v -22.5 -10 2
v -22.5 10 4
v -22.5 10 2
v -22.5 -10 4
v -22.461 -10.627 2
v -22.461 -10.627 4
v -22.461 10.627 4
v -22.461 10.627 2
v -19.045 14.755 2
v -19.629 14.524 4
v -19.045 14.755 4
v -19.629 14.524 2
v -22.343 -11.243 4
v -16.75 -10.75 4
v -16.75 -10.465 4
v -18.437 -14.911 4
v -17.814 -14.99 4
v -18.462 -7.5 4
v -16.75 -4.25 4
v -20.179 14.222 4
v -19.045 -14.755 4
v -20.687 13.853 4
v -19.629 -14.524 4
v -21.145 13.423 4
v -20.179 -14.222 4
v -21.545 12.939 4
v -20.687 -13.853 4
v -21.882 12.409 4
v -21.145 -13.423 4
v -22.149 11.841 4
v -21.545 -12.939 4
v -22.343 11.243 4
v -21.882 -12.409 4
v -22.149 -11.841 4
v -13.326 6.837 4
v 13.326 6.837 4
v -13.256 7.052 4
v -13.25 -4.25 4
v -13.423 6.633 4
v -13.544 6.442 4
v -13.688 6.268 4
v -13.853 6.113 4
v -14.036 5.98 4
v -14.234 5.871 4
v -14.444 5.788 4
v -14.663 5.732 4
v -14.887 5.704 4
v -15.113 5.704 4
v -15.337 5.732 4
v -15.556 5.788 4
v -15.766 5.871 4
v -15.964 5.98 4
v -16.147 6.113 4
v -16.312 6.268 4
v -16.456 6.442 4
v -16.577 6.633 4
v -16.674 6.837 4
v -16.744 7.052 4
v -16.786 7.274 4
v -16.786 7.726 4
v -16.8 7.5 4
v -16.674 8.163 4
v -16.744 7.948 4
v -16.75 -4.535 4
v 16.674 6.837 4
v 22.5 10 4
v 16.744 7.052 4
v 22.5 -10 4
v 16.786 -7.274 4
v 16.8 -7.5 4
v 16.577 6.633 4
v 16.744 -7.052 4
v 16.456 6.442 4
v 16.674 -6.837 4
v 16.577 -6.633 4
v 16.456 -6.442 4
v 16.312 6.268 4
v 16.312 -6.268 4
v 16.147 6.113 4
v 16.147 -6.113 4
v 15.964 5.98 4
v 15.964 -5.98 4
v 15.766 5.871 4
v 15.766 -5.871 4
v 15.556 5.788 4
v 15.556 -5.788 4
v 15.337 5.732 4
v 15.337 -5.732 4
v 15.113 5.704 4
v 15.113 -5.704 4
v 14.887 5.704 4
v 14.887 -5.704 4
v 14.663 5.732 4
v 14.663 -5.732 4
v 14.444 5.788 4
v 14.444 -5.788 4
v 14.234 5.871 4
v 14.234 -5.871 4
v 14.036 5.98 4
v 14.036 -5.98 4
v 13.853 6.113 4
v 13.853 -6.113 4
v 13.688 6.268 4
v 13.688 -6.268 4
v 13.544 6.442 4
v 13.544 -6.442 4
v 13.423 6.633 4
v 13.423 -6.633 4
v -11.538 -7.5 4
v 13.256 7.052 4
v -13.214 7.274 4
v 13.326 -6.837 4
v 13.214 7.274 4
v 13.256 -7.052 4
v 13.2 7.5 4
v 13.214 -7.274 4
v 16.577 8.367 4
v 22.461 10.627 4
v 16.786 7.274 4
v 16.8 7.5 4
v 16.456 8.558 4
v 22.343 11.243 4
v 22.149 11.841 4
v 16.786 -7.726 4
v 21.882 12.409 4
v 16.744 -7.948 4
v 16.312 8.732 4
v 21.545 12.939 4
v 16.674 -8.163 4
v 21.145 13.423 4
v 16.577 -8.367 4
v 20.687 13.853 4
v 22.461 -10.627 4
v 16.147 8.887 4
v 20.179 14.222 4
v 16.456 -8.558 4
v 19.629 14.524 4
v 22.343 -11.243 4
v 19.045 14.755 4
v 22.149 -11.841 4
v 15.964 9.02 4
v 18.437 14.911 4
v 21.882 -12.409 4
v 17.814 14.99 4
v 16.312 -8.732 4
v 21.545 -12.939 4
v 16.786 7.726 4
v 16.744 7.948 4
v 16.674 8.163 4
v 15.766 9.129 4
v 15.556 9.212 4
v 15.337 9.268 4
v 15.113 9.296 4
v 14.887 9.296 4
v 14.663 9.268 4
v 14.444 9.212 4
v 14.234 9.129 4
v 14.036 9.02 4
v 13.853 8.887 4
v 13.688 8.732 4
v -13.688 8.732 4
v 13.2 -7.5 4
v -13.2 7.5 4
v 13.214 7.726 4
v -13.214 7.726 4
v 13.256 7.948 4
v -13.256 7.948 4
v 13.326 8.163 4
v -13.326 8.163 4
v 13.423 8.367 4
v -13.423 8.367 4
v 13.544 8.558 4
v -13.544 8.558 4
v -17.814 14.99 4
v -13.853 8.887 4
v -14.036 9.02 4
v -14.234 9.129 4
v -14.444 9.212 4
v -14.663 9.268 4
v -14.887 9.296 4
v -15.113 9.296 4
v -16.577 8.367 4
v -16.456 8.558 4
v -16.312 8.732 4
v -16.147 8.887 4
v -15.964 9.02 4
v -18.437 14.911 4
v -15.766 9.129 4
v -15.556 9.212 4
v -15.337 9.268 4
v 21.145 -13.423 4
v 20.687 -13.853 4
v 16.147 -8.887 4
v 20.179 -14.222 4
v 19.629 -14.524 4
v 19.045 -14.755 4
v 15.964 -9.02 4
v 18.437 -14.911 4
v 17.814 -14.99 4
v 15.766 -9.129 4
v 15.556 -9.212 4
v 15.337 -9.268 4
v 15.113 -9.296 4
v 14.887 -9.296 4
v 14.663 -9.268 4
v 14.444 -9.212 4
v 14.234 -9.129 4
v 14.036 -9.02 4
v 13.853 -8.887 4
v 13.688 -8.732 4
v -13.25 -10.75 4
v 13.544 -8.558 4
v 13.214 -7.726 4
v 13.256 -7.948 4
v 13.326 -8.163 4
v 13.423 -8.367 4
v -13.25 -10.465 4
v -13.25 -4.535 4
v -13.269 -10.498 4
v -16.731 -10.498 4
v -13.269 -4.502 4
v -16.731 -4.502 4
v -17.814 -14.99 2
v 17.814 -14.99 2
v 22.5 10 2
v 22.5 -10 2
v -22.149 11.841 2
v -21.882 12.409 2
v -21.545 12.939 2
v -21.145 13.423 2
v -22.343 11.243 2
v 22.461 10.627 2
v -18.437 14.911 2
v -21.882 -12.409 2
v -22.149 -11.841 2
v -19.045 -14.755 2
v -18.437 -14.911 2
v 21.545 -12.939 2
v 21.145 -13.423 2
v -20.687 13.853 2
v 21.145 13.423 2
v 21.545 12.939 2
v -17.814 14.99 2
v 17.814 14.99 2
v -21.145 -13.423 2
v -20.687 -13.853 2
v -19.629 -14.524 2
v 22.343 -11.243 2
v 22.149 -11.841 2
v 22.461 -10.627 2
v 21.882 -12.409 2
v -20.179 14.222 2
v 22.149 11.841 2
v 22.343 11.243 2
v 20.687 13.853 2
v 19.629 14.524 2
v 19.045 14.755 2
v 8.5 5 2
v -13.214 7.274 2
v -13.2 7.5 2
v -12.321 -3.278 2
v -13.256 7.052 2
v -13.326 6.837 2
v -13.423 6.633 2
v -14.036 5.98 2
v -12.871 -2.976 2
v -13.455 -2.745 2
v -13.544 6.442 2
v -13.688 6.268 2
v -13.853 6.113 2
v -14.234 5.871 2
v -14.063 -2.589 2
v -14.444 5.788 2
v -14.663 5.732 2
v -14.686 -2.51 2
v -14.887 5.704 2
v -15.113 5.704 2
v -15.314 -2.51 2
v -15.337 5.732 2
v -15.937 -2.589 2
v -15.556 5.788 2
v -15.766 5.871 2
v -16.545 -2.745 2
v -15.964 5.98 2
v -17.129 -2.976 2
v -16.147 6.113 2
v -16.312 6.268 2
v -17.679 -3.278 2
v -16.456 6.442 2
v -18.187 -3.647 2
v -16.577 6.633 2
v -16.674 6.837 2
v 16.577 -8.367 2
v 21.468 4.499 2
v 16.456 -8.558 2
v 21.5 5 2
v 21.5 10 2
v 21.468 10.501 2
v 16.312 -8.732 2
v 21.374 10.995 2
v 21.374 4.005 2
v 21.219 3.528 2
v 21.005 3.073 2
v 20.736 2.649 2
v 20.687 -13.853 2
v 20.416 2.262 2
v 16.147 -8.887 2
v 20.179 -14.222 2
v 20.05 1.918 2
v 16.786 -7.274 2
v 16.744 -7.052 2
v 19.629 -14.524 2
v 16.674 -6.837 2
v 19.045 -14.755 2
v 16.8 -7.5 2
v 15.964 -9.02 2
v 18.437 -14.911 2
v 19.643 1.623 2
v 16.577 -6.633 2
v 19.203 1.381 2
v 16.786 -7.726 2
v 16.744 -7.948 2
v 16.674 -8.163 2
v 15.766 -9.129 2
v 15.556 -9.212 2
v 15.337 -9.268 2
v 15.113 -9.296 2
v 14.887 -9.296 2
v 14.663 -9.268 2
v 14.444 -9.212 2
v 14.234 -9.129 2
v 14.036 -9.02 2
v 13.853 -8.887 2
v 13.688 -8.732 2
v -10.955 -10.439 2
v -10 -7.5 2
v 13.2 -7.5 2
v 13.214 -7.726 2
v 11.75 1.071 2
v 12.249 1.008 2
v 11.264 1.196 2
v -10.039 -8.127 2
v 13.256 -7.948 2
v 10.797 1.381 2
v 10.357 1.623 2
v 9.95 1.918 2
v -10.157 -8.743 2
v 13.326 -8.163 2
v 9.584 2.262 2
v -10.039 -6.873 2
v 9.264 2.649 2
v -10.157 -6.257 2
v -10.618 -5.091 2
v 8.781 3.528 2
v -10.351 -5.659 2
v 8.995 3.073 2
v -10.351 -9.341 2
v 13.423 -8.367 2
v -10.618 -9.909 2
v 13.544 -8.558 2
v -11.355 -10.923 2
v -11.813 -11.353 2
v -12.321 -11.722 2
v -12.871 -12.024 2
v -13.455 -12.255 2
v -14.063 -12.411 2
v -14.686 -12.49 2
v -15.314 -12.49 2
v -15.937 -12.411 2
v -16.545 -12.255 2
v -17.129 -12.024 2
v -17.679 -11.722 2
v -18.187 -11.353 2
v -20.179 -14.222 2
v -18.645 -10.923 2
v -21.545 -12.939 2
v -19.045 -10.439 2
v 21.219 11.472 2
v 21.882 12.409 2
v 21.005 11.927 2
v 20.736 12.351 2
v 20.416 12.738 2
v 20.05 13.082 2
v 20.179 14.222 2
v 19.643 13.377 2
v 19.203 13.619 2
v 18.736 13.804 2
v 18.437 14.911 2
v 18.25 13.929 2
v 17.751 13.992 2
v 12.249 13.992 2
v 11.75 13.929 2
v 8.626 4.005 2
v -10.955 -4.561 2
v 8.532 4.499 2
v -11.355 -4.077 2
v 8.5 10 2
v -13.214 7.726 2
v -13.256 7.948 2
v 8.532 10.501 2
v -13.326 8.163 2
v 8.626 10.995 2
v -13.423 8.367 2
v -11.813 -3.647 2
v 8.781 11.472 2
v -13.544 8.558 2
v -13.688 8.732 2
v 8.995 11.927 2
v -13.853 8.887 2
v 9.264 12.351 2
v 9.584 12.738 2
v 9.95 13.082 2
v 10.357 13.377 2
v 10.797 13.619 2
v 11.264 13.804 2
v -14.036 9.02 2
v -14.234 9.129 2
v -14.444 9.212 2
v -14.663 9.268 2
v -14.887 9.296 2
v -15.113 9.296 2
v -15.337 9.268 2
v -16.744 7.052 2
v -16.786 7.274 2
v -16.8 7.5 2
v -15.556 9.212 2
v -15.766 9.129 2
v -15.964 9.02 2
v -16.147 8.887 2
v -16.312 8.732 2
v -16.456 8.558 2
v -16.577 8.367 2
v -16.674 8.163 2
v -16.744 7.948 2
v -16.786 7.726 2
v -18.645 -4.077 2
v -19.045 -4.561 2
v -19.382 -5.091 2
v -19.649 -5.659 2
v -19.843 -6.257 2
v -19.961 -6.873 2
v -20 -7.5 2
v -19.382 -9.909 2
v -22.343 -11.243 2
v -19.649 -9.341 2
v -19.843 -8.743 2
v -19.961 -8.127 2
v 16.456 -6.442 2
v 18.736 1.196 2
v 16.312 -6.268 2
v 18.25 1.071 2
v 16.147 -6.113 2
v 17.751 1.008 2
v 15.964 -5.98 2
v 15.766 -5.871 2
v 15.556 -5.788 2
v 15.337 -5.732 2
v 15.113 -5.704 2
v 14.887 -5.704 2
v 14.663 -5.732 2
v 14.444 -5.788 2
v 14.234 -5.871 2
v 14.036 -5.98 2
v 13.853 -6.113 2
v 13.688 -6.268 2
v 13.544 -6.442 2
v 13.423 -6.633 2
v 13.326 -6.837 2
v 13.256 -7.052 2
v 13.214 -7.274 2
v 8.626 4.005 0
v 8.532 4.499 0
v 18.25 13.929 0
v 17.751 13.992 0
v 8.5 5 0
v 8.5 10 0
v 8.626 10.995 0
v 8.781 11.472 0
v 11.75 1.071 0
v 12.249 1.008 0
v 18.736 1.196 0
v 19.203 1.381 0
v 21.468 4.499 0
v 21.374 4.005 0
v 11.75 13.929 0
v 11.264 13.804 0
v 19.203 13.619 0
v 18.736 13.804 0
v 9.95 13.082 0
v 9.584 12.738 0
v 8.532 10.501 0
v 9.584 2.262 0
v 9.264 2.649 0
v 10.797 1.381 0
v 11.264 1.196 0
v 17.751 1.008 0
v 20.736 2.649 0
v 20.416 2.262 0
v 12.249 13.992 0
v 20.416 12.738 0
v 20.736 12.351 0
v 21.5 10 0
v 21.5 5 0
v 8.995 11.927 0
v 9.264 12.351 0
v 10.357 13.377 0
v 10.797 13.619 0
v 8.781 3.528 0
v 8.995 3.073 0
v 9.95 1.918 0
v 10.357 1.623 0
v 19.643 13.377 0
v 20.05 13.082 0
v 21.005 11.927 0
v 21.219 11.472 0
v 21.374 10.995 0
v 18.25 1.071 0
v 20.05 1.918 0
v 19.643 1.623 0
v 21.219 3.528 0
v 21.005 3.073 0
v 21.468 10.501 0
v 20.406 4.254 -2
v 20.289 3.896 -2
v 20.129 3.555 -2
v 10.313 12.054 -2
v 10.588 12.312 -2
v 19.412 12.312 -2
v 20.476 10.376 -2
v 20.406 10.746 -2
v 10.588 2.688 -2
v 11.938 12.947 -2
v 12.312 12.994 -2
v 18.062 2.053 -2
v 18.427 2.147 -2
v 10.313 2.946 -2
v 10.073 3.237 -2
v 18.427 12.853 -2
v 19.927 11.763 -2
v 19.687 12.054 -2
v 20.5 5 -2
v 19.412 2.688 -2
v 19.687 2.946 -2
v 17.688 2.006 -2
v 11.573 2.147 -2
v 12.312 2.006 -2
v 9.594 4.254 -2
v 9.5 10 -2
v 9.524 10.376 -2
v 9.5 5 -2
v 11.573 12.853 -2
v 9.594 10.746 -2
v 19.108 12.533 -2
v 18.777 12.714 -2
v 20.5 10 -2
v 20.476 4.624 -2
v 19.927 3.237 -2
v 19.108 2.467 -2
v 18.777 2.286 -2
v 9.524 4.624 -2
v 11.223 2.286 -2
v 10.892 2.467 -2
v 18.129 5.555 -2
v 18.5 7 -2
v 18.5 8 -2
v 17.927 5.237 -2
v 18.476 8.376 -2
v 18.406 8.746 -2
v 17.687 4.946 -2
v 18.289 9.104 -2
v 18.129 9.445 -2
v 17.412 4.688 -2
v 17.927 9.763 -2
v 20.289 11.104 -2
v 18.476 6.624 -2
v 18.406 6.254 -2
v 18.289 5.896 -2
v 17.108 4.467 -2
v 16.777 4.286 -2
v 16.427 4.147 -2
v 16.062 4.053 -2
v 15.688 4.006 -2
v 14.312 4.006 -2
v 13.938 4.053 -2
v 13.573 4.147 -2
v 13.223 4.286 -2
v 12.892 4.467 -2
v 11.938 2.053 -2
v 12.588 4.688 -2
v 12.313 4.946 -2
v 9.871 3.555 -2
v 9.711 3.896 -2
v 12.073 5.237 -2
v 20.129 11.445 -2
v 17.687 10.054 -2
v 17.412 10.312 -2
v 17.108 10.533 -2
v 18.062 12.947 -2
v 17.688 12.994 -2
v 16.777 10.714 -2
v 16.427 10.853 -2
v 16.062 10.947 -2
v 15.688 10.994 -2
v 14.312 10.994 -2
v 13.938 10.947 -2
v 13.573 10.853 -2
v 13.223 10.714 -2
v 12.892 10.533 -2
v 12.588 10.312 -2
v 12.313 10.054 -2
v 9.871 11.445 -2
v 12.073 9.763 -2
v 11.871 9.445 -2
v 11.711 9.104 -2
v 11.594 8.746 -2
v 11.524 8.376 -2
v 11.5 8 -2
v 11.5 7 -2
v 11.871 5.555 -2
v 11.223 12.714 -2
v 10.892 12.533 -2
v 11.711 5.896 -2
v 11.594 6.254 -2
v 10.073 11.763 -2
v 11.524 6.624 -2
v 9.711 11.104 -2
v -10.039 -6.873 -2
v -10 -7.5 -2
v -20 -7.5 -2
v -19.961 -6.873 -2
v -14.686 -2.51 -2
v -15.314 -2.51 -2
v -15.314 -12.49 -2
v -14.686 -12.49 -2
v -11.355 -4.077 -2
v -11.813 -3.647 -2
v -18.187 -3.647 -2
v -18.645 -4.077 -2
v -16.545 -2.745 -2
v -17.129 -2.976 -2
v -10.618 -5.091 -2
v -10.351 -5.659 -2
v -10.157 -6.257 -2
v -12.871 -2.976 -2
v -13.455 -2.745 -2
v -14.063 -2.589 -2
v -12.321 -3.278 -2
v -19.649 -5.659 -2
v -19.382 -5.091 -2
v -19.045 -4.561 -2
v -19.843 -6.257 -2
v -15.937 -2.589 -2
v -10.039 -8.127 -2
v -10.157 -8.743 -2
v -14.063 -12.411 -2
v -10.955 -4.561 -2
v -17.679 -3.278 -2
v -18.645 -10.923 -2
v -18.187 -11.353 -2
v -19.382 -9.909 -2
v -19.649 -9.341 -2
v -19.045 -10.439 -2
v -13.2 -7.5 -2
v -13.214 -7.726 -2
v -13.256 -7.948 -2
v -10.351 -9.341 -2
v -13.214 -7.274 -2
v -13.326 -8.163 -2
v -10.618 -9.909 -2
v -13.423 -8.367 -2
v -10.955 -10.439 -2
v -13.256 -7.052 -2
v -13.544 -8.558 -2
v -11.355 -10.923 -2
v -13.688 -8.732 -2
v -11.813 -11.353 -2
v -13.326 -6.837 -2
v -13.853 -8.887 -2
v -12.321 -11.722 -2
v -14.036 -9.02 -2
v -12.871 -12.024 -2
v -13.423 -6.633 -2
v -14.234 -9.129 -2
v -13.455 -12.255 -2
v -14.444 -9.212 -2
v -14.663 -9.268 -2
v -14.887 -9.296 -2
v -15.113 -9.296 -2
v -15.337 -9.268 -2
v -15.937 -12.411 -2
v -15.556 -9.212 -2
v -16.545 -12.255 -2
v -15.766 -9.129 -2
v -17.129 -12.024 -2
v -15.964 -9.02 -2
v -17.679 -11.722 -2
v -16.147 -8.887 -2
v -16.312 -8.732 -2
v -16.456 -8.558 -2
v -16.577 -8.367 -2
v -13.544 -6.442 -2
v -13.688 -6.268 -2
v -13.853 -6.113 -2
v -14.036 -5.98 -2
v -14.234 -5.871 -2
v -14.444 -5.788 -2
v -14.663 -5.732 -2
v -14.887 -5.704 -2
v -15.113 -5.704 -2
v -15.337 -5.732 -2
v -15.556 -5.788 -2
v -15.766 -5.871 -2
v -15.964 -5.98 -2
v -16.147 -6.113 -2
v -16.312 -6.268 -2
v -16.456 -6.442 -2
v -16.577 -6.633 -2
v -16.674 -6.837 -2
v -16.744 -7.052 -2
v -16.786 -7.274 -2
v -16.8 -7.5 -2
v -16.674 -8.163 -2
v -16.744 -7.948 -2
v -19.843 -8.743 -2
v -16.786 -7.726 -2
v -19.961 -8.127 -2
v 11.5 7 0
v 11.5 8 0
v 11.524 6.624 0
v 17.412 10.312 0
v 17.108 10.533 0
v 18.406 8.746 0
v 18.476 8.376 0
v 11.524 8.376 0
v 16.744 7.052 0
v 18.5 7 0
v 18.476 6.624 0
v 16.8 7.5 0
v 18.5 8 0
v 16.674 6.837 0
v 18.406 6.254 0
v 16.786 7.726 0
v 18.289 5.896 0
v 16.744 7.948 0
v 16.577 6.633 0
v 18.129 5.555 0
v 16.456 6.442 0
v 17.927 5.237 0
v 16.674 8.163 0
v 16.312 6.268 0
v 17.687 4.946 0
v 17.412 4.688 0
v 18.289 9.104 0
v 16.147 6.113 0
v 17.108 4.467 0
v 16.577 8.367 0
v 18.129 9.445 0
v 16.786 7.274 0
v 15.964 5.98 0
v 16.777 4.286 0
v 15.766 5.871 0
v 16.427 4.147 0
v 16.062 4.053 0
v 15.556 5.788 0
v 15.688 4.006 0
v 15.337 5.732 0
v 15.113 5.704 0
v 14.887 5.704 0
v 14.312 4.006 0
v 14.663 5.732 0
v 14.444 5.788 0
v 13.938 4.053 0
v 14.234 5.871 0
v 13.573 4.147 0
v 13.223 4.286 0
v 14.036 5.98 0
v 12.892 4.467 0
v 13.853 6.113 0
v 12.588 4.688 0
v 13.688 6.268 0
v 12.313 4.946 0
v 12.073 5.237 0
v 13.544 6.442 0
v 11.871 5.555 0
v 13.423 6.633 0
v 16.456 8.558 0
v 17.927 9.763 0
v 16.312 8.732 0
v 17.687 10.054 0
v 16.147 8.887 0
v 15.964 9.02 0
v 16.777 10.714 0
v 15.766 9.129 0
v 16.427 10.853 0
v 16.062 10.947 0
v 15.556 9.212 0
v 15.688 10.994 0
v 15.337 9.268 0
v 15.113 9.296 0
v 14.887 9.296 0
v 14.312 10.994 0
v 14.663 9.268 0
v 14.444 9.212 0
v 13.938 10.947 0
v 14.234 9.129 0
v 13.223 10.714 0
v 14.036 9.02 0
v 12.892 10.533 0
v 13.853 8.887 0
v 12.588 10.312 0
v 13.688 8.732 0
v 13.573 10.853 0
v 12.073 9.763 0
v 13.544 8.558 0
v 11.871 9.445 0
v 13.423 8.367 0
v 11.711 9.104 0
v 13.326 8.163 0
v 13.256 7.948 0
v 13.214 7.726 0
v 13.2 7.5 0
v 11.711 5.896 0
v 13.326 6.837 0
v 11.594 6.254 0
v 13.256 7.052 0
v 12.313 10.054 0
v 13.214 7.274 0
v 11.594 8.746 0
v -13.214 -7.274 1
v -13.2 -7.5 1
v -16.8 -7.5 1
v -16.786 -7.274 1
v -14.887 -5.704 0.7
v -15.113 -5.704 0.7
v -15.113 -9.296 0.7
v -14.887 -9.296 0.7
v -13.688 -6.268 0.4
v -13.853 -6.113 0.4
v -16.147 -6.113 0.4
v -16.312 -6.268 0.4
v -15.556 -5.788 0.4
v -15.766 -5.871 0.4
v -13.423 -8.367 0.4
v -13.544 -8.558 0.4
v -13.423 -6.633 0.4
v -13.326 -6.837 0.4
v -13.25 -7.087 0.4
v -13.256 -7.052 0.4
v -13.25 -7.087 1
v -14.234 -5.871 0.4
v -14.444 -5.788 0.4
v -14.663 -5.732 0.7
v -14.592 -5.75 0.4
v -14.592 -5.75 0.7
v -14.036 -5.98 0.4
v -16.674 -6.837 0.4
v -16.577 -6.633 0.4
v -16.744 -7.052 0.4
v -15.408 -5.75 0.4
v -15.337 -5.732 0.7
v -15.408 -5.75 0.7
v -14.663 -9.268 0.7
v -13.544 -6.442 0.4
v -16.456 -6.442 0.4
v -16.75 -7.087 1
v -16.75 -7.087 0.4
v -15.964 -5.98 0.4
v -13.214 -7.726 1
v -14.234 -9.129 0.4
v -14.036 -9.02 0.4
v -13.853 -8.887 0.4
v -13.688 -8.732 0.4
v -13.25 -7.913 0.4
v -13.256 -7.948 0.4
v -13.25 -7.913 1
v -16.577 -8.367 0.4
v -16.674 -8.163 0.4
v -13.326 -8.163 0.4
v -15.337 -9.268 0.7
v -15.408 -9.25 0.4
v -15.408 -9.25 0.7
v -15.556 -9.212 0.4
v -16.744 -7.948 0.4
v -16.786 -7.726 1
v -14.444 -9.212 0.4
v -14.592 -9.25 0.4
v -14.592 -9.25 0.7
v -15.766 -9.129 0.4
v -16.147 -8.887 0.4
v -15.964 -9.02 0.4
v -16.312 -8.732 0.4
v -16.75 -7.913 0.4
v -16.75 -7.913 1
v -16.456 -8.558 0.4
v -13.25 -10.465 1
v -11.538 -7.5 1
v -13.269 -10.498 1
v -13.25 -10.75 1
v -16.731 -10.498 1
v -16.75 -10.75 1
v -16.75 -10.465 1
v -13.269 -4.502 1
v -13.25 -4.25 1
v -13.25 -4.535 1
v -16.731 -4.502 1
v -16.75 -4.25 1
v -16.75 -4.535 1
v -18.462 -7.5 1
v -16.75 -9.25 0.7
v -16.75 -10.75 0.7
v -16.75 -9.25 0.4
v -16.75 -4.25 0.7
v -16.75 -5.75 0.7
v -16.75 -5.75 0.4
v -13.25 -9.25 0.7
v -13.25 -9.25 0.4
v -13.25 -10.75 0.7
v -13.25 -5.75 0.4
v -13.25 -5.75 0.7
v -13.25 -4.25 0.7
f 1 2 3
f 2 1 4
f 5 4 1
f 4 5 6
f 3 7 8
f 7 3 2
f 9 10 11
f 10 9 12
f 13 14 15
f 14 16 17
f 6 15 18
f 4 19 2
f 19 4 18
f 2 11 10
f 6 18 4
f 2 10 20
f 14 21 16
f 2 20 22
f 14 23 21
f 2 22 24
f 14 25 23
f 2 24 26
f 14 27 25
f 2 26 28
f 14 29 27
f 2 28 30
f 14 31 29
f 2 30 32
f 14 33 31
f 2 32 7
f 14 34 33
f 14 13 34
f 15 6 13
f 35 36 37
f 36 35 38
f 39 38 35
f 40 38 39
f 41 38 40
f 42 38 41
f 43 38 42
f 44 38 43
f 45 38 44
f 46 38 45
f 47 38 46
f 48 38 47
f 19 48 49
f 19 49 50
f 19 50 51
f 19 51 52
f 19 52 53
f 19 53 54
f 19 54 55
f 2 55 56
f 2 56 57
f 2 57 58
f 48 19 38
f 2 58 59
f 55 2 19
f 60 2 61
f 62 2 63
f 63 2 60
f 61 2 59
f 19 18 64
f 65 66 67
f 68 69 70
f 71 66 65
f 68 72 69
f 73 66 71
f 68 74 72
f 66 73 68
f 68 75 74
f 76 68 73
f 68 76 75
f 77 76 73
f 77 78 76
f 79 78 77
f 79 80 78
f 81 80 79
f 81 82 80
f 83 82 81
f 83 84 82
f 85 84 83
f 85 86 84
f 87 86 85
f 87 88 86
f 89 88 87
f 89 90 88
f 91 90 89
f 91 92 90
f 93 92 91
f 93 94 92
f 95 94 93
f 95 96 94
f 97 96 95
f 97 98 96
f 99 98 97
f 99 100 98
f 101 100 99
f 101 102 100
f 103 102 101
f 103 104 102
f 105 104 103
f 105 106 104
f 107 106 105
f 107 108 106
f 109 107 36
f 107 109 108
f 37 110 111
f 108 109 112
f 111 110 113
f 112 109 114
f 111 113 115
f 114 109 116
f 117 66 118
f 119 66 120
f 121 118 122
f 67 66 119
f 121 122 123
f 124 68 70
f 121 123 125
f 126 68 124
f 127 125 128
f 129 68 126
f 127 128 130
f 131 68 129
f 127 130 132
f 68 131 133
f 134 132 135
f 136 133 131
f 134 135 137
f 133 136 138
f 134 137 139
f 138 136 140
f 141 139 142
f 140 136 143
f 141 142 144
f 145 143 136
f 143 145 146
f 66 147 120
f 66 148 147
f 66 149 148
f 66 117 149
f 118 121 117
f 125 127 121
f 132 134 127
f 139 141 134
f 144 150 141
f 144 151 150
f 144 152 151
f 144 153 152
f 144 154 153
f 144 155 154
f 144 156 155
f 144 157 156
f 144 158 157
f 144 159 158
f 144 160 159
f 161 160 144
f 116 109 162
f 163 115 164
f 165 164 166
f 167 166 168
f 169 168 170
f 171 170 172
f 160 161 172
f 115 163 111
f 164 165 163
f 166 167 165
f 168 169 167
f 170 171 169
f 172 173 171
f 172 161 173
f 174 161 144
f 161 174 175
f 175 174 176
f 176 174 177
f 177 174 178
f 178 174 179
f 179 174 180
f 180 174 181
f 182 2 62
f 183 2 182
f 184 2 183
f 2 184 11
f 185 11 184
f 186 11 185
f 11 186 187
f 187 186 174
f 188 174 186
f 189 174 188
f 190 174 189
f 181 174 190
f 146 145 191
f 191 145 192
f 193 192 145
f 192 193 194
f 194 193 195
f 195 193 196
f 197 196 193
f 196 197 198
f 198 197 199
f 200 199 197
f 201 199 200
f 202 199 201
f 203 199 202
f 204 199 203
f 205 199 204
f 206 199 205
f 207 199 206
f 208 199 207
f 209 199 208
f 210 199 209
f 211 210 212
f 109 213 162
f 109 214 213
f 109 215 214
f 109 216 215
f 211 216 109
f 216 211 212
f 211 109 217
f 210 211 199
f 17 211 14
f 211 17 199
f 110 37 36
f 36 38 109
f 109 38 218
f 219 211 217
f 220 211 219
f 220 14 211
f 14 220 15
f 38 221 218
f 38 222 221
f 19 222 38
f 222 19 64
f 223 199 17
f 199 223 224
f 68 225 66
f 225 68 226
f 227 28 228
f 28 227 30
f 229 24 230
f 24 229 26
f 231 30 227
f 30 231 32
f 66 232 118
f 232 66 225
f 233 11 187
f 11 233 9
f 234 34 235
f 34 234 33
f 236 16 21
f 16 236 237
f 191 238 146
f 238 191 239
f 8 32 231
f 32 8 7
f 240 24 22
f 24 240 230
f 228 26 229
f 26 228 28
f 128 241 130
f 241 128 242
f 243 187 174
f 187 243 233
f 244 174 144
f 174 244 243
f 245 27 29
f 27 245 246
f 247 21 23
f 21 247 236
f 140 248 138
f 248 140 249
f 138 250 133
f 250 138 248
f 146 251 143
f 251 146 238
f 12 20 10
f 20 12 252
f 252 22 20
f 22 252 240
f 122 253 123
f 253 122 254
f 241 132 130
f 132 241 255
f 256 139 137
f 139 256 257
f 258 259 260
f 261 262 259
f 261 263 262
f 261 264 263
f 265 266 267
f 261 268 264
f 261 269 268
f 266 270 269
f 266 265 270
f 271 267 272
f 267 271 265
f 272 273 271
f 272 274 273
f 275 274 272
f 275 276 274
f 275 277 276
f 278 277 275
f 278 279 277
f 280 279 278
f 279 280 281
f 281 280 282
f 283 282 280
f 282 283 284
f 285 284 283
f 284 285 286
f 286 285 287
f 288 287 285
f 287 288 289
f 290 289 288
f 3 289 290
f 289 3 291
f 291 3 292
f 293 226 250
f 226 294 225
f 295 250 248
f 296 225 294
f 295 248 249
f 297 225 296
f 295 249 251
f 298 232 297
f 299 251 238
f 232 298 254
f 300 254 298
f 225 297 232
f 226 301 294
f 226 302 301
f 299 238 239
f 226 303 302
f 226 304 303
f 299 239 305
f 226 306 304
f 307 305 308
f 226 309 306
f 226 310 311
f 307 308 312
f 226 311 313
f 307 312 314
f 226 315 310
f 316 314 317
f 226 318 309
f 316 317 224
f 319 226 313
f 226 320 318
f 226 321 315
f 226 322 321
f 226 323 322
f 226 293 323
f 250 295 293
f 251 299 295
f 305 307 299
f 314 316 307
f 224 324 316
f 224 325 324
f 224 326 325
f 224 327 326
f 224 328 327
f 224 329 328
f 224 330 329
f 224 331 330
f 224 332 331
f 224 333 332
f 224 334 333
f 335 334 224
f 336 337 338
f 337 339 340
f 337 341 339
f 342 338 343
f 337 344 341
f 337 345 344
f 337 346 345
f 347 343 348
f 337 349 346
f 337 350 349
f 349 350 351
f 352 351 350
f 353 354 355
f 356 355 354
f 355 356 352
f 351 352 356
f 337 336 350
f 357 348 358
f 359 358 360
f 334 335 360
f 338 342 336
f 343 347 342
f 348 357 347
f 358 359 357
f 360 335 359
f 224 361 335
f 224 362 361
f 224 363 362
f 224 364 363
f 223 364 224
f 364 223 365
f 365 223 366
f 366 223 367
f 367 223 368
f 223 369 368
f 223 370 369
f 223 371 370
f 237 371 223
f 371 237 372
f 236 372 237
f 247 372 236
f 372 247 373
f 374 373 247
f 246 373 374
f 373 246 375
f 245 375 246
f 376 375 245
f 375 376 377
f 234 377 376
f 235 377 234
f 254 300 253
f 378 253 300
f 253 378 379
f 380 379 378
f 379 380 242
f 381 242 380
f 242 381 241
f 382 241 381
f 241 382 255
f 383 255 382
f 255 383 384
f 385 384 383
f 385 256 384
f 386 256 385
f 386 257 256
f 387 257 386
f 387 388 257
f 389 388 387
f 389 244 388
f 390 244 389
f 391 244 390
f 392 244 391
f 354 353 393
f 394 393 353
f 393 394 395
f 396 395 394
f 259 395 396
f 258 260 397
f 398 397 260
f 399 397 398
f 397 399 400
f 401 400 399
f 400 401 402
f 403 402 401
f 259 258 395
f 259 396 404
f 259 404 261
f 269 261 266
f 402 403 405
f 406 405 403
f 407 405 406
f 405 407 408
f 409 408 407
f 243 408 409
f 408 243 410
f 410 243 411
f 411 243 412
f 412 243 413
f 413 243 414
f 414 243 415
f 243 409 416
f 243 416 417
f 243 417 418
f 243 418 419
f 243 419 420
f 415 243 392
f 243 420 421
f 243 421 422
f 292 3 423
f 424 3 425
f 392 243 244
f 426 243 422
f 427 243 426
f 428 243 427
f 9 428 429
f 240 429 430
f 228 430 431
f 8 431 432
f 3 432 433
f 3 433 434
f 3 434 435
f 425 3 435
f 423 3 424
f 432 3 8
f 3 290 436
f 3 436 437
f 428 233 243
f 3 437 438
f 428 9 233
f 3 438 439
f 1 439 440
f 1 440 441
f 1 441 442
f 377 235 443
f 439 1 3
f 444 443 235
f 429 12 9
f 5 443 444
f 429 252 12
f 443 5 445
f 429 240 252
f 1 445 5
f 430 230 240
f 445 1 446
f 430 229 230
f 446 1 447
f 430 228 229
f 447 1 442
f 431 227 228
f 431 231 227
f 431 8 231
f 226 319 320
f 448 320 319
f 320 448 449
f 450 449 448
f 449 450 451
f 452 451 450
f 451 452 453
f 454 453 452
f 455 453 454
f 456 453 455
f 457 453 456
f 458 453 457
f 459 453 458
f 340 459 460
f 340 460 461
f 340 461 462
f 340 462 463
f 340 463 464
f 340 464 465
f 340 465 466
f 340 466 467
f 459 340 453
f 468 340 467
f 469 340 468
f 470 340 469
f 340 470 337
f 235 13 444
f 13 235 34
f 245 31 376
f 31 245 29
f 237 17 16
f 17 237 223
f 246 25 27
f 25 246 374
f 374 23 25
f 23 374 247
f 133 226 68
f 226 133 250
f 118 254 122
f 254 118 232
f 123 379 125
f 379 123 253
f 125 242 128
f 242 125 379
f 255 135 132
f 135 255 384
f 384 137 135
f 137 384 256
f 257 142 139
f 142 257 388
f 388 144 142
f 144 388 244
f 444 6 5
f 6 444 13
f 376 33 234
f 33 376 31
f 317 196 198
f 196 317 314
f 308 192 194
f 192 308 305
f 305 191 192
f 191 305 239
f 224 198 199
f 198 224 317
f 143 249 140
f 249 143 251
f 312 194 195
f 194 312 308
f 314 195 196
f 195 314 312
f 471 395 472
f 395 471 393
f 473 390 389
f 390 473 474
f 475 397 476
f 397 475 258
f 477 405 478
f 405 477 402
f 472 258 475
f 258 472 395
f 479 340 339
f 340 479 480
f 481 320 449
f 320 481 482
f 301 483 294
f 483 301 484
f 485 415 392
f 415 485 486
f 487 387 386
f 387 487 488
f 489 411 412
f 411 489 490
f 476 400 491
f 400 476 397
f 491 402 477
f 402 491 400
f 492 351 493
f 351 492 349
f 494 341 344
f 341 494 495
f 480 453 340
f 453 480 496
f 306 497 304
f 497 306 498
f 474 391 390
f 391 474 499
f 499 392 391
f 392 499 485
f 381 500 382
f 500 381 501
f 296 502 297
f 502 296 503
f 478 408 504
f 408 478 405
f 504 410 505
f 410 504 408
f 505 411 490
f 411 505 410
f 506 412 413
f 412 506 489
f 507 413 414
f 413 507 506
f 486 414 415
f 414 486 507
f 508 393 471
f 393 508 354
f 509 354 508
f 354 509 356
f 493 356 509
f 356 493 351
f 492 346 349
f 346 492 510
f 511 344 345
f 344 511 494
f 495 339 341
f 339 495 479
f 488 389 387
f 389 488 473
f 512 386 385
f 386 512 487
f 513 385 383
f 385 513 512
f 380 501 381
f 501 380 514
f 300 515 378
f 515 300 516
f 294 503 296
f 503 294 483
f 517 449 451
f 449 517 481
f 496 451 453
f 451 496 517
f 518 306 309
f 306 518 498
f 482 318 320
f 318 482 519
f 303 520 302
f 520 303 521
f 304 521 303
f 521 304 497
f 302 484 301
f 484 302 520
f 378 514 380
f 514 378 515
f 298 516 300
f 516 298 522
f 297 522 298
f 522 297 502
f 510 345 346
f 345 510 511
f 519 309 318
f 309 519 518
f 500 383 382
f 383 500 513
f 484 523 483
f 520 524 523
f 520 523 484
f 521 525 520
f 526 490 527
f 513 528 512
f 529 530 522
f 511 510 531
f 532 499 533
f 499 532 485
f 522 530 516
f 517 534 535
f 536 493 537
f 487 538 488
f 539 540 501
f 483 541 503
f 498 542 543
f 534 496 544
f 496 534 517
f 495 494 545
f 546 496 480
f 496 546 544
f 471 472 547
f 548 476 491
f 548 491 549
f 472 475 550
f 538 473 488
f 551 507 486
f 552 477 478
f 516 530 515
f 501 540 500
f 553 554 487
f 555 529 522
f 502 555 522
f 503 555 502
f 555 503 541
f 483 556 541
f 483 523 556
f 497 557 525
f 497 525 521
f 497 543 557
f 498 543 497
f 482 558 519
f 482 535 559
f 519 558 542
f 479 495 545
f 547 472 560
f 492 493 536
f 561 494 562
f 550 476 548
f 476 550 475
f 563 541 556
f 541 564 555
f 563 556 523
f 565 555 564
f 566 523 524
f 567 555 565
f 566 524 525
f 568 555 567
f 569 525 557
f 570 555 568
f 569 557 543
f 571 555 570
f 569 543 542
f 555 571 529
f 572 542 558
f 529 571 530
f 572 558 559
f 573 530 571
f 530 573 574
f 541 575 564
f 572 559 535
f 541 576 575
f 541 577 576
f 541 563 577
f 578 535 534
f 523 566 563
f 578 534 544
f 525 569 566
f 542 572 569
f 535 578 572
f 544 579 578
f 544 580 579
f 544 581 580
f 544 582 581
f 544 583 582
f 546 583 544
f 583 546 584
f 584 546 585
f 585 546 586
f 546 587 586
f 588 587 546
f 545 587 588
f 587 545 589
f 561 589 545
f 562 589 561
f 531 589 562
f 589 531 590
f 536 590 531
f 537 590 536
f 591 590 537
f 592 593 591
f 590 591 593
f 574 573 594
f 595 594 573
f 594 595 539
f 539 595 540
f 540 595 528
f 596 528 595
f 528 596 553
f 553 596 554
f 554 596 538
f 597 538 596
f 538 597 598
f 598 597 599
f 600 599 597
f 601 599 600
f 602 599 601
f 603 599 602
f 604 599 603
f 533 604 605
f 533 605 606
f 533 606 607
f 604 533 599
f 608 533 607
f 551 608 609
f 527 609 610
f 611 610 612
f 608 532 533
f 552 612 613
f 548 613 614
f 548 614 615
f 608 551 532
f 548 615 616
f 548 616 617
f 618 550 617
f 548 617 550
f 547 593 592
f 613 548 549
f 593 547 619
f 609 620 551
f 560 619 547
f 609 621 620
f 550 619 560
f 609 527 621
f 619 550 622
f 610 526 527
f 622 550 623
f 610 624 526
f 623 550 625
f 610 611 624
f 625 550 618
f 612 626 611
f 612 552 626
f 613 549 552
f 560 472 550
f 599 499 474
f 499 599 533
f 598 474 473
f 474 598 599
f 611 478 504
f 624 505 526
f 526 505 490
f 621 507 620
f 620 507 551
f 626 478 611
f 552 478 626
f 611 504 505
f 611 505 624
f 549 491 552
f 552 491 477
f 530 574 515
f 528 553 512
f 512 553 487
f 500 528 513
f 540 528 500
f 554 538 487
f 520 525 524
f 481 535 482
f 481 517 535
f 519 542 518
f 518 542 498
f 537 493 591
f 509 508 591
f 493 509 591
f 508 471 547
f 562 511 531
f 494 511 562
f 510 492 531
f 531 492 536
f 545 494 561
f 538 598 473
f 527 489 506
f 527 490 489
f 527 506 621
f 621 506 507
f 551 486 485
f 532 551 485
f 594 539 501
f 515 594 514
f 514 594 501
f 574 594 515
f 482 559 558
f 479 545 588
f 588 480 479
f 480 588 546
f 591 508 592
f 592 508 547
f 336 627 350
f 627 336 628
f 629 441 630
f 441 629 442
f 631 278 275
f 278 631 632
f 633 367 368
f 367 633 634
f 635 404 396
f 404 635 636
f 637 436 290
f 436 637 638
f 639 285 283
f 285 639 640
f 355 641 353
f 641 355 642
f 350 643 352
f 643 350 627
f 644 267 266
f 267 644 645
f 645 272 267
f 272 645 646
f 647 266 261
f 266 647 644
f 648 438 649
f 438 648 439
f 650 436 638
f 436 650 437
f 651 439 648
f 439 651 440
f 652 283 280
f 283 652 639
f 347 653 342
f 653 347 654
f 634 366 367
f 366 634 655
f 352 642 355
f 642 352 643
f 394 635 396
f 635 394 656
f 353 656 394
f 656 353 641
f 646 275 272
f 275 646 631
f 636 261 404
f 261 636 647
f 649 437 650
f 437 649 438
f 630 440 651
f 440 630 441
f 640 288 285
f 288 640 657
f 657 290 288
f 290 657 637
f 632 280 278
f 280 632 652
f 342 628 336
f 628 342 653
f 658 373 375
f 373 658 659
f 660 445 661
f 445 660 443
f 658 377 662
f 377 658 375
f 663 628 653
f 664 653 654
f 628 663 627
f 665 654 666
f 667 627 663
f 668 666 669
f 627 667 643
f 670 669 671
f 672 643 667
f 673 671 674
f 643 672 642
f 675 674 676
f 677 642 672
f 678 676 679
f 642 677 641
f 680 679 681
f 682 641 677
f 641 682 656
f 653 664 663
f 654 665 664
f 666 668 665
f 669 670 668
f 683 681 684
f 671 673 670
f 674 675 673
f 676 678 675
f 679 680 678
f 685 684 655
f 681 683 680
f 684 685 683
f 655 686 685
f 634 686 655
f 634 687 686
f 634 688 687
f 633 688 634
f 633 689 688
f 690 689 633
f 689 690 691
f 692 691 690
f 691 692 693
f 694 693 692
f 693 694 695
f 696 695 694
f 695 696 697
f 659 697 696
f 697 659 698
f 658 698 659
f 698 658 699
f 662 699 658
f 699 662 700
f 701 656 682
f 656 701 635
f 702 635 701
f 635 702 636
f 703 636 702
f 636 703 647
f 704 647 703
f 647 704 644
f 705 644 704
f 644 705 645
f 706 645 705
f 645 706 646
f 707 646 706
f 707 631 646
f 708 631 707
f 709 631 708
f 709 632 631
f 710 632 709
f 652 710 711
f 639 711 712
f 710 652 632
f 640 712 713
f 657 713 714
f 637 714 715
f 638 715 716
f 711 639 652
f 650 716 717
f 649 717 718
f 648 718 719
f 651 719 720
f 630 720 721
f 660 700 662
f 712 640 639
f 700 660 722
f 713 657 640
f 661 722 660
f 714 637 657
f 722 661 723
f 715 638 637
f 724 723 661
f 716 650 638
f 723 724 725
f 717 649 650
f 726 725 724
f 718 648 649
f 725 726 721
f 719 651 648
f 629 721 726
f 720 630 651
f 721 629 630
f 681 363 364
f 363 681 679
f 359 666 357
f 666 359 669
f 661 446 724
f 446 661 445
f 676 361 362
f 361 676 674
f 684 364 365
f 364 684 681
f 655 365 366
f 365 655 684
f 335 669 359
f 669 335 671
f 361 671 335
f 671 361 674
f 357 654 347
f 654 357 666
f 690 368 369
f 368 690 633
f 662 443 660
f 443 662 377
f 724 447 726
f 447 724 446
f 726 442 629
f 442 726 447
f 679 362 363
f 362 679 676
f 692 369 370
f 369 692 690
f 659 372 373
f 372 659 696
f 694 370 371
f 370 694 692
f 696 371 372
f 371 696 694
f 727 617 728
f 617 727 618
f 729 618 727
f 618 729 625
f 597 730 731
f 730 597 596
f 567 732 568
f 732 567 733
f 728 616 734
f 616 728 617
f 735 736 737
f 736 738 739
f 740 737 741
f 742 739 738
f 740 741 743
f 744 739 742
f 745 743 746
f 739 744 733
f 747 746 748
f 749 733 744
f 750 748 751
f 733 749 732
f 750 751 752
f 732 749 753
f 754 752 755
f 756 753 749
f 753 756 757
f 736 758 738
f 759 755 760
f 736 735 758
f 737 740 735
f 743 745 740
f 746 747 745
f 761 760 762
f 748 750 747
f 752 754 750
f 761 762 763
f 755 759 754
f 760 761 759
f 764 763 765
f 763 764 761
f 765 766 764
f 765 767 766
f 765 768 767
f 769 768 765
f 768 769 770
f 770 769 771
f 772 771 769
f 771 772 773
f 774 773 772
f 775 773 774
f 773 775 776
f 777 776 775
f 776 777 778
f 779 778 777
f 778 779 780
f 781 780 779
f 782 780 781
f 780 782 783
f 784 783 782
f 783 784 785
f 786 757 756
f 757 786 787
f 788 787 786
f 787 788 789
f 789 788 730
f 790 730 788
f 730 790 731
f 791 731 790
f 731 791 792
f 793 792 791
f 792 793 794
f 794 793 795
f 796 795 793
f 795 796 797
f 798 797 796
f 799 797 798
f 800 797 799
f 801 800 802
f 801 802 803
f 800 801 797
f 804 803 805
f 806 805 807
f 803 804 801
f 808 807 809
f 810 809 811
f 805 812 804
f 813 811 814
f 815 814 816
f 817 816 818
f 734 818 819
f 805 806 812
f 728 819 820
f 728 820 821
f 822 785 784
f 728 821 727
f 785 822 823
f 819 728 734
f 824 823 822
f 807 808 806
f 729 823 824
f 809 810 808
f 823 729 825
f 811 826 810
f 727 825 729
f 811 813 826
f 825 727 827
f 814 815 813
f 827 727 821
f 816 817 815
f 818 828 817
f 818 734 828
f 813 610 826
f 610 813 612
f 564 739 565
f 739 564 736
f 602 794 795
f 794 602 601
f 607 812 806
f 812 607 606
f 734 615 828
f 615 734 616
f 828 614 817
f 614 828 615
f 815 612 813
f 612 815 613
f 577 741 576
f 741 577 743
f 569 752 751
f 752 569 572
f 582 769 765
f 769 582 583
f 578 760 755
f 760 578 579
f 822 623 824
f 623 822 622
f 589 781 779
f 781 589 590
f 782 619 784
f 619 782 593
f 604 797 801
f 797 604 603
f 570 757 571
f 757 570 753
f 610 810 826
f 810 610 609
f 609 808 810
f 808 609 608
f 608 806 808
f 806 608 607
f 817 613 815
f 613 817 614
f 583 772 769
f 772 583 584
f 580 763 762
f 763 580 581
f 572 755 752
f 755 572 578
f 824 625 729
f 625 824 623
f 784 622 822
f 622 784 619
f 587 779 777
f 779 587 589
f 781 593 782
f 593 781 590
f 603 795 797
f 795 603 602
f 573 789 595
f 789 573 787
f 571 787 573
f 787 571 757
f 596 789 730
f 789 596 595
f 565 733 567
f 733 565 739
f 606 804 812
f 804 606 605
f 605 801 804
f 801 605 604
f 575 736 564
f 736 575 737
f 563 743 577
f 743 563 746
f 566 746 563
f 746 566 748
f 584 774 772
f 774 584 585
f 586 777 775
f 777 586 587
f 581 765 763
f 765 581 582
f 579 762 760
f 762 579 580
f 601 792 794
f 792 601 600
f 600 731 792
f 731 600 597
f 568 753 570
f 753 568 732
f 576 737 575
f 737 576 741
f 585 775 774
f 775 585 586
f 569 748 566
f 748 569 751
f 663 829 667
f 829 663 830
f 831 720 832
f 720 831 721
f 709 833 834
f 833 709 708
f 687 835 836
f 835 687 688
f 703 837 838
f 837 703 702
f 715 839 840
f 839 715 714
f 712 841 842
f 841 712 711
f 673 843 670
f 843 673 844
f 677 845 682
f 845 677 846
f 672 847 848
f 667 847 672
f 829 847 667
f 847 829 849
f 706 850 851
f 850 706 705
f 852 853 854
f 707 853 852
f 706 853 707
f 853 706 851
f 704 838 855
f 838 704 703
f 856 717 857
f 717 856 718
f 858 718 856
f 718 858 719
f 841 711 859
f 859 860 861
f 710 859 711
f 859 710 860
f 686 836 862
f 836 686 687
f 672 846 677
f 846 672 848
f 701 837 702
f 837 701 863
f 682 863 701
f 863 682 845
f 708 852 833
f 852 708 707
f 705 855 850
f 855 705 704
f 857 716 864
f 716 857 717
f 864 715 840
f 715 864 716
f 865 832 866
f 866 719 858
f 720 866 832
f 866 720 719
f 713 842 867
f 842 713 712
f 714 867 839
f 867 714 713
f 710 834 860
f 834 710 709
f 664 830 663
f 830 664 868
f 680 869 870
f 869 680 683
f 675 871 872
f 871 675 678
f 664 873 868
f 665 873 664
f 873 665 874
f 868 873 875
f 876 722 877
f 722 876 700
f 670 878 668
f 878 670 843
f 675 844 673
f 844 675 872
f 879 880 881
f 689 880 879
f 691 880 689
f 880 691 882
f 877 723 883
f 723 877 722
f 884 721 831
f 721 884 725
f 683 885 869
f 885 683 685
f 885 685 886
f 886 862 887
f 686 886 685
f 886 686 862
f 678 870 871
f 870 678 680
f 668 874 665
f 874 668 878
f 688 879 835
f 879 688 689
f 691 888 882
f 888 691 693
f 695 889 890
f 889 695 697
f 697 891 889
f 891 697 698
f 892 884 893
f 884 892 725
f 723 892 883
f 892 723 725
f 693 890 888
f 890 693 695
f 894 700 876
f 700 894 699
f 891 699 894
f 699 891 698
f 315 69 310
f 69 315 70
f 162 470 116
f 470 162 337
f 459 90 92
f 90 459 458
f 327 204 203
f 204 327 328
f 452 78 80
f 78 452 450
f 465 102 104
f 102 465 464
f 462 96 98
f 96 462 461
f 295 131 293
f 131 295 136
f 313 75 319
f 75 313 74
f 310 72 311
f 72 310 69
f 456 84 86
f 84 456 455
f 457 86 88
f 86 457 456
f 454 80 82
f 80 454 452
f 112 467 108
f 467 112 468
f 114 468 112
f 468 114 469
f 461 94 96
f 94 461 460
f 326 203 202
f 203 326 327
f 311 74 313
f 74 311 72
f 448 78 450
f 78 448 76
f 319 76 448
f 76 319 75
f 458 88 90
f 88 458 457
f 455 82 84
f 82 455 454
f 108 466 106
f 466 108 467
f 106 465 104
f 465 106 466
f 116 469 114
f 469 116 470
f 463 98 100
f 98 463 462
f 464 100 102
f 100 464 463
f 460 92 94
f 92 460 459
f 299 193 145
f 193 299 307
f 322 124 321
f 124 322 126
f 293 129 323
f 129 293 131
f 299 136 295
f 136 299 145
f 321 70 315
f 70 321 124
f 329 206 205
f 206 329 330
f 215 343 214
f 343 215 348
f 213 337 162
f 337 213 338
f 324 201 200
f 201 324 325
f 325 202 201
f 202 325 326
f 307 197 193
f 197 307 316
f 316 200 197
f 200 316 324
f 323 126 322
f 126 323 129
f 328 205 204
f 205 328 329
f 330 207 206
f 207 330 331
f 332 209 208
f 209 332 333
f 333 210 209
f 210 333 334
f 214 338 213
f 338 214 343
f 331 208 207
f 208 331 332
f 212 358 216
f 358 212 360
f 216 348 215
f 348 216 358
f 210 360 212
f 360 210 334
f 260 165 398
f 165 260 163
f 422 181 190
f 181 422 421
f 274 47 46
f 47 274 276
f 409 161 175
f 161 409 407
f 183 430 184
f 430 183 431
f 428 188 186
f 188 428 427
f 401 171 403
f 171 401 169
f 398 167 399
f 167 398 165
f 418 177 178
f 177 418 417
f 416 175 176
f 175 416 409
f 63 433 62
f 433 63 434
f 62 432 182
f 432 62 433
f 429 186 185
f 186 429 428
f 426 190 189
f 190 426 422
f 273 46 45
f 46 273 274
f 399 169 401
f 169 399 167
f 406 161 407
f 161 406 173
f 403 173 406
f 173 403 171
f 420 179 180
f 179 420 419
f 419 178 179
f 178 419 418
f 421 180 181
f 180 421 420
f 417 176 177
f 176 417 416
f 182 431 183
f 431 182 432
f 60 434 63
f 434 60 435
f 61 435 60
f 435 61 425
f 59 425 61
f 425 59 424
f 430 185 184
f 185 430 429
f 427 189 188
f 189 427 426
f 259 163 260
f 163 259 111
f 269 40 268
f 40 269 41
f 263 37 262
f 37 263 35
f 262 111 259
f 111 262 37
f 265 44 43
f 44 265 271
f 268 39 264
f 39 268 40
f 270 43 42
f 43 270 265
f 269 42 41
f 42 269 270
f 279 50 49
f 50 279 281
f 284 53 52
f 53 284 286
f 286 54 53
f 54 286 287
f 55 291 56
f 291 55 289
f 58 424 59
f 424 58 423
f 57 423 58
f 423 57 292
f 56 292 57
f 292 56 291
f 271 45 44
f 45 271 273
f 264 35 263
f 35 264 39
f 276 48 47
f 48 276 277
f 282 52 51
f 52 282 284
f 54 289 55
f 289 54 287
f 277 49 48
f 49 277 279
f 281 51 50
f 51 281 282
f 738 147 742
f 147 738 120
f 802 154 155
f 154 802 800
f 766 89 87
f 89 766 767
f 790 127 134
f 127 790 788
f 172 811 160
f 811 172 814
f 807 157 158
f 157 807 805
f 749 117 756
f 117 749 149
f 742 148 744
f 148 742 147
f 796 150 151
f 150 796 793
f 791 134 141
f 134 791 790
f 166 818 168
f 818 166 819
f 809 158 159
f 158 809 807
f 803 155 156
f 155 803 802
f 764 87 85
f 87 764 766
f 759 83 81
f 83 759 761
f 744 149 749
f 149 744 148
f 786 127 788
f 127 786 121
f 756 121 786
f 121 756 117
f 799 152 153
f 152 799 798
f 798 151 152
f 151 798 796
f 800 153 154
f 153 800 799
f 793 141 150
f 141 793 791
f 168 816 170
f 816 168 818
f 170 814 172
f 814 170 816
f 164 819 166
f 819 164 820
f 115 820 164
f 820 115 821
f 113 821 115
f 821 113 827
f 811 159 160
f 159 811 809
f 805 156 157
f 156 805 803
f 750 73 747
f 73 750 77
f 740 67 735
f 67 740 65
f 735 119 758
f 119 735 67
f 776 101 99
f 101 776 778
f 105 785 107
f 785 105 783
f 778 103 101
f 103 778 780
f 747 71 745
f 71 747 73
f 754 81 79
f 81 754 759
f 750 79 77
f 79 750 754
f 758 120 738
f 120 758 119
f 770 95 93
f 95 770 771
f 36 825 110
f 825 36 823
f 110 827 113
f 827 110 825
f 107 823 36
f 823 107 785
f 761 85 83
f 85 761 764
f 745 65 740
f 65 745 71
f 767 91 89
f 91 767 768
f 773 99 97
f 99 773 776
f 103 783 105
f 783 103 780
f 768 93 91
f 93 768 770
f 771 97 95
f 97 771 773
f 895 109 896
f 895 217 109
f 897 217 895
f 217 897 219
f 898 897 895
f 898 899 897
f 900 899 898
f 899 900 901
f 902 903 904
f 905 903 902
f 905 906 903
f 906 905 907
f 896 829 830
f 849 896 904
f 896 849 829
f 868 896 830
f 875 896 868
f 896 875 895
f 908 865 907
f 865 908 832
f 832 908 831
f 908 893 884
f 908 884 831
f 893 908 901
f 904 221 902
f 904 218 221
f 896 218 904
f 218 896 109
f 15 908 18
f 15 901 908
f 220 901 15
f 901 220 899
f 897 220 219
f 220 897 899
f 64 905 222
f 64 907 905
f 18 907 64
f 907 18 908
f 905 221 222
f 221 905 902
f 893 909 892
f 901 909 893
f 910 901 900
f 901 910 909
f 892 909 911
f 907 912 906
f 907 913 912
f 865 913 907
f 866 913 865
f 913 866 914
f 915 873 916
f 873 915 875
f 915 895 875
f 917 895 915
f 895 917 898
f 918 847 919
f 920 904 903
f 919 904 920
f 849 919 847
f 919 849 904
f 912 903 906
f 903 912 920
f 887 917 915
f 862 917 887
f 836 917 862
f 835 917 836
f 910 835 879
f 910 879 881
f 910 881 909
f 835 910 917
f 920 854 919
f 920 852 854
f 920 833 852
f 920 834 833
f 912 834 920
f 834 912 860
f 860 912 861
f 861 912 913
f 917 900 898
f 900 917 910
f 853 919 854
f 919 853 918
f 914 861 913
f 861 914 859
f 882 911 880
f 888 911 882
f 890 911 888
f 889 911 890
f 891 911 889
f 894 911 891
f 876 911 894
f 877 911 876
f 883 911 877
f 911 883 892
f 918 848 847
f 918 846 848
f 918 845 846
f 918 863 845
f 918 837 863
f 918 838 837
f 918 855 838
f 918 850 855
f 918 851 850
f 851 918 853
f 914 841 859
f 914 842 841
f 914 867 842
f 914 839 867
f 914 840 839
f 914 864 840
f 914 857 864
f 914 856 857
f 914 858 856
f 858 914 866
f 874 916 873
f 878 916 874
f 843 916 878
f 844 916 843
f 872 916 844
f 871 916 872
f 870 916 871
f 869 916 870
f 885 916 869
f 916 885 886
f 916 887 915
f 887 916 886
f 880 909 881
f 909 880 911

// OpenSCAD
$fn = 50;


difference() {
	union() {
		translate(v = [0, 0, 2]) {
			rotate(a = [0, 0, 0]) {
				hull() {
					translate(v = [-17.5000000000, 10.0000000000, 0]) {
						rotate(a = [0, 0, 0]) {
							translate(v = [0, 0, 0]) {
								rotate(a = [0, 0, 0]) {
									cylinder(h = 2, r = 5);
								}
							}
						}
					}
					translate(v = [17.5000000000, 10.0000000000, 0]) {
						rotate(a = [0, 0, 0]) {
							translate(v = [0, 0, 0]) {
								rotate(a = [0, 0, 0]) {
									cylinder(h = 2, r = 5);
								}
							}
						}
					}
					translate(v = [-17.5000000000, -10.0000000000, 0]) {
						rotate(a = [0, 0, 0]) {
							translate(v = [0, 0, 0]) {
								rotate(a = [0, 0, 0]) {
									cylinder(h = 2, r = 5);
								}
							}
						}
					}
					translate(v = [17.5000000000, -10.0000000000, 0]) {
						rotate(a = [0, 0, 0]) {
							translate(v = [0, 0, 0]) {
								rotate(a = [0, 0, 0]) {
									cylinder(h = 2, r = 5);
								}
							}
						}
					}
				}
			}
		}
		translate(v = [15.0000000000, 7.5000000000, 0]) {
			rotate(a = [0, 0, 0]) {
				hull() {
					translate(v = [-2.5000000000, 2.5000000000, 0]) {
						rotate(a = [0, 0, 0]) {
							cylinder(h = 2, r1 = 4.0000000000, r2 = 4.0000000000);
						}
					}
					translate(v = [2.5000000000, 2.5000000000, 0]) {
						rotate(a = [0, 0, 0]) {
							cylinder(h = 2, r1 = 4.0000000000, r2 = 4.0000000000);
						}
					}
					translate(v = [-2.5000000000, -2.5000000000, 0]) {
						rotate(a = [0, 0, 0]) {
							cylinder(h = 2, r1 = 4.0000000000, r2 = 4.0000000000);
						}
					}
					translate(v = [2.5000000000, -2.5000000000, 0]) {
						rotate(a = [0, 0, 0]) {
							cylinder(h = 2, r1 = 4.0000000000, r2 = 4.0000000000);
						}
					}
				}
			}
		}
		translate(v = [15.0000000000, 7.5000000000, -2]) {
			rotate(a = [0, 180, 0]) {
				hull() {
					translate(v = [-2.5000000000, 2.5000000000, 0]) {
						rotate(a = [0, 180, 0]) {
							cylinder(h = 2, r1 = 3.0000000000, r2 = 4.0000000000);
						}
					}
					translate(v = [2.5000000000, 2.5000000000, 0]) {
						rotate(a = [0, 180, 0]) {
							cylinder(h = 2, r1 = 3.0000000000, r2 = 4.0000000000);
						}
					}
					translate(v = [-2.5000000000, -2.5000000000, 0]) {
						rotate(a = [0, 180, 0]) {
							cylinder(h = 2, r1 = 3.0000000000, r2 = 4.0000000000);
						}
					}
					translate(v = [2.5000000000, -2.5000000000, 0]) {
						rotate(a = [0, 180, 0]) {
							cylinder(h = 2, r1 = 3.0000000000, r2 = 4.0000000000);
						}
					}
				}
			}
		}
		translate(v = [-15.0000000000, -7.5000000000, -2.0000000000]) {
			rotate(a = [0, 0, 0]) {
				cylinder(h = 4, r = 5);
			}
		}
	}
	union() {
		translate(v = [15.0000000000, 7.5000000000, -2]) {
			rotate(a = [0, 0, 0]) {
				hull() {
					translate(v = [-0.5000000000, 0.5000000000, 0]) {
						rotate(a = [0, 0, 0]) {
							translate(v = [0, 0, 0]) {
								rotate(a = [0, 0, 0]) {
									cylinder(h = 2, r = 3.0000000000);
								}
							}
						}
					}
					translate(v = [0.5000000000, 0.5000000000, 0]) {
						rotate(a = [0, 0, 0]) {
							translate(v = [0, 0, 0]) {
								rotate(a = [0, 0, 0]) {
									cylinder(h = 2, r = 3.0000000000);
								}
							}
						}
					}
					translate(v = [-0.5000000000, -0.5000000000, 0]) {
						rotate(a = [0, 0, 0]) {
							translate(v = [0, 0, 0]) {
								rotate(a = [0, 0, 0]) {
									cylinder(h = 2, r = 3.0000000000);
								}
							}
						}
					}
					translate(v = [0.5000000000, -0.5000000000, 0]) {
						rotate(a = [0, 0, 0]) {
							translate(v = [0, 0, 0]) {
								rotate(a = [0, 0, 0]) {
									cylinder(h = 2, r = 3.0000000000);
								}
							}
						}
					}
				}
			}
		}
		translate(v = [-15.0000000000, -7.5000000000, -50]) {
			rotate(a = [0, 0, 0]) {
				cylinder(h = 100, r = 1.8000000000);
			}
		}
		translate(v = [15.0000000000, -7.5000000000, -50]) {
			rotate(a = [0, 0, 0]) {
				cylinder(h = 100, r = 1.8000000000);
			}
		}
		translate(v = [-15.0000000000, 7.5000000000, -50]) {
			rotate(a = [0, 0, 0]) {
				cylinder(h = 100, r = 1.8000000000);
			}
		}
		translate(v = [15.0000000000, 7.5000000000, -50]) {
			rotate(a = [0, 0, 0]) {
				cylinder(h = 100, r = 1.8000000000);
			}
		}
		translate(v = [-15.0000000000, -7.5000000000, 1]) {
			rotate(a = [0, 0, 0]) {
				#translate(v = [0, 0, 0]) {
					rotate(a = [0, 0, 0]) {
						linear_extrude(height = 3) {
							polygon(points = [[3.4620000000, 0.0000000000], [1.7310000000, 2.9981799479], [-1.7310000000, 2.9981799479], [-3.4620000000, 0.0000000000], [-1.7310000000, -2.9981799479], [1.7310000000, -2.9981799479]]);
						}
					}
				}
			}
		}
		#translate(v = [-16.7500000000, -10.7500000000, 4]) {
			rotate(a = [0, 0, 0]) {
				cube(size = [3.5000000000, 6.5000000000, 0.3000000000]);
			}
		}
		#translate(v = [-16.7500000000, -9.2500000000, 4.3000000000]) {
			rotate(a = [0, 0, 0]) {
				cube(size = [3.5000000000, 3.5000000000, 0.3000000000]);
			}
		}
		#translate(v = [-16.7500000000, -10.7500000000, 0.7000000000]) {
			rotate(a = [0, 0, 0]) {
				cube(size = [3.5000000000, 6.5000000000, 0.3000000000]);
			}
		}
		#translate(v = [-16.7500000000, -9.2500000000, 0.4000000000]) {
			rotate(a = [0, 0, 0]) {
				cube(size = [3.5000000000, 3.5000000000, 0.3000000000]);
			}
		}
	}
}
